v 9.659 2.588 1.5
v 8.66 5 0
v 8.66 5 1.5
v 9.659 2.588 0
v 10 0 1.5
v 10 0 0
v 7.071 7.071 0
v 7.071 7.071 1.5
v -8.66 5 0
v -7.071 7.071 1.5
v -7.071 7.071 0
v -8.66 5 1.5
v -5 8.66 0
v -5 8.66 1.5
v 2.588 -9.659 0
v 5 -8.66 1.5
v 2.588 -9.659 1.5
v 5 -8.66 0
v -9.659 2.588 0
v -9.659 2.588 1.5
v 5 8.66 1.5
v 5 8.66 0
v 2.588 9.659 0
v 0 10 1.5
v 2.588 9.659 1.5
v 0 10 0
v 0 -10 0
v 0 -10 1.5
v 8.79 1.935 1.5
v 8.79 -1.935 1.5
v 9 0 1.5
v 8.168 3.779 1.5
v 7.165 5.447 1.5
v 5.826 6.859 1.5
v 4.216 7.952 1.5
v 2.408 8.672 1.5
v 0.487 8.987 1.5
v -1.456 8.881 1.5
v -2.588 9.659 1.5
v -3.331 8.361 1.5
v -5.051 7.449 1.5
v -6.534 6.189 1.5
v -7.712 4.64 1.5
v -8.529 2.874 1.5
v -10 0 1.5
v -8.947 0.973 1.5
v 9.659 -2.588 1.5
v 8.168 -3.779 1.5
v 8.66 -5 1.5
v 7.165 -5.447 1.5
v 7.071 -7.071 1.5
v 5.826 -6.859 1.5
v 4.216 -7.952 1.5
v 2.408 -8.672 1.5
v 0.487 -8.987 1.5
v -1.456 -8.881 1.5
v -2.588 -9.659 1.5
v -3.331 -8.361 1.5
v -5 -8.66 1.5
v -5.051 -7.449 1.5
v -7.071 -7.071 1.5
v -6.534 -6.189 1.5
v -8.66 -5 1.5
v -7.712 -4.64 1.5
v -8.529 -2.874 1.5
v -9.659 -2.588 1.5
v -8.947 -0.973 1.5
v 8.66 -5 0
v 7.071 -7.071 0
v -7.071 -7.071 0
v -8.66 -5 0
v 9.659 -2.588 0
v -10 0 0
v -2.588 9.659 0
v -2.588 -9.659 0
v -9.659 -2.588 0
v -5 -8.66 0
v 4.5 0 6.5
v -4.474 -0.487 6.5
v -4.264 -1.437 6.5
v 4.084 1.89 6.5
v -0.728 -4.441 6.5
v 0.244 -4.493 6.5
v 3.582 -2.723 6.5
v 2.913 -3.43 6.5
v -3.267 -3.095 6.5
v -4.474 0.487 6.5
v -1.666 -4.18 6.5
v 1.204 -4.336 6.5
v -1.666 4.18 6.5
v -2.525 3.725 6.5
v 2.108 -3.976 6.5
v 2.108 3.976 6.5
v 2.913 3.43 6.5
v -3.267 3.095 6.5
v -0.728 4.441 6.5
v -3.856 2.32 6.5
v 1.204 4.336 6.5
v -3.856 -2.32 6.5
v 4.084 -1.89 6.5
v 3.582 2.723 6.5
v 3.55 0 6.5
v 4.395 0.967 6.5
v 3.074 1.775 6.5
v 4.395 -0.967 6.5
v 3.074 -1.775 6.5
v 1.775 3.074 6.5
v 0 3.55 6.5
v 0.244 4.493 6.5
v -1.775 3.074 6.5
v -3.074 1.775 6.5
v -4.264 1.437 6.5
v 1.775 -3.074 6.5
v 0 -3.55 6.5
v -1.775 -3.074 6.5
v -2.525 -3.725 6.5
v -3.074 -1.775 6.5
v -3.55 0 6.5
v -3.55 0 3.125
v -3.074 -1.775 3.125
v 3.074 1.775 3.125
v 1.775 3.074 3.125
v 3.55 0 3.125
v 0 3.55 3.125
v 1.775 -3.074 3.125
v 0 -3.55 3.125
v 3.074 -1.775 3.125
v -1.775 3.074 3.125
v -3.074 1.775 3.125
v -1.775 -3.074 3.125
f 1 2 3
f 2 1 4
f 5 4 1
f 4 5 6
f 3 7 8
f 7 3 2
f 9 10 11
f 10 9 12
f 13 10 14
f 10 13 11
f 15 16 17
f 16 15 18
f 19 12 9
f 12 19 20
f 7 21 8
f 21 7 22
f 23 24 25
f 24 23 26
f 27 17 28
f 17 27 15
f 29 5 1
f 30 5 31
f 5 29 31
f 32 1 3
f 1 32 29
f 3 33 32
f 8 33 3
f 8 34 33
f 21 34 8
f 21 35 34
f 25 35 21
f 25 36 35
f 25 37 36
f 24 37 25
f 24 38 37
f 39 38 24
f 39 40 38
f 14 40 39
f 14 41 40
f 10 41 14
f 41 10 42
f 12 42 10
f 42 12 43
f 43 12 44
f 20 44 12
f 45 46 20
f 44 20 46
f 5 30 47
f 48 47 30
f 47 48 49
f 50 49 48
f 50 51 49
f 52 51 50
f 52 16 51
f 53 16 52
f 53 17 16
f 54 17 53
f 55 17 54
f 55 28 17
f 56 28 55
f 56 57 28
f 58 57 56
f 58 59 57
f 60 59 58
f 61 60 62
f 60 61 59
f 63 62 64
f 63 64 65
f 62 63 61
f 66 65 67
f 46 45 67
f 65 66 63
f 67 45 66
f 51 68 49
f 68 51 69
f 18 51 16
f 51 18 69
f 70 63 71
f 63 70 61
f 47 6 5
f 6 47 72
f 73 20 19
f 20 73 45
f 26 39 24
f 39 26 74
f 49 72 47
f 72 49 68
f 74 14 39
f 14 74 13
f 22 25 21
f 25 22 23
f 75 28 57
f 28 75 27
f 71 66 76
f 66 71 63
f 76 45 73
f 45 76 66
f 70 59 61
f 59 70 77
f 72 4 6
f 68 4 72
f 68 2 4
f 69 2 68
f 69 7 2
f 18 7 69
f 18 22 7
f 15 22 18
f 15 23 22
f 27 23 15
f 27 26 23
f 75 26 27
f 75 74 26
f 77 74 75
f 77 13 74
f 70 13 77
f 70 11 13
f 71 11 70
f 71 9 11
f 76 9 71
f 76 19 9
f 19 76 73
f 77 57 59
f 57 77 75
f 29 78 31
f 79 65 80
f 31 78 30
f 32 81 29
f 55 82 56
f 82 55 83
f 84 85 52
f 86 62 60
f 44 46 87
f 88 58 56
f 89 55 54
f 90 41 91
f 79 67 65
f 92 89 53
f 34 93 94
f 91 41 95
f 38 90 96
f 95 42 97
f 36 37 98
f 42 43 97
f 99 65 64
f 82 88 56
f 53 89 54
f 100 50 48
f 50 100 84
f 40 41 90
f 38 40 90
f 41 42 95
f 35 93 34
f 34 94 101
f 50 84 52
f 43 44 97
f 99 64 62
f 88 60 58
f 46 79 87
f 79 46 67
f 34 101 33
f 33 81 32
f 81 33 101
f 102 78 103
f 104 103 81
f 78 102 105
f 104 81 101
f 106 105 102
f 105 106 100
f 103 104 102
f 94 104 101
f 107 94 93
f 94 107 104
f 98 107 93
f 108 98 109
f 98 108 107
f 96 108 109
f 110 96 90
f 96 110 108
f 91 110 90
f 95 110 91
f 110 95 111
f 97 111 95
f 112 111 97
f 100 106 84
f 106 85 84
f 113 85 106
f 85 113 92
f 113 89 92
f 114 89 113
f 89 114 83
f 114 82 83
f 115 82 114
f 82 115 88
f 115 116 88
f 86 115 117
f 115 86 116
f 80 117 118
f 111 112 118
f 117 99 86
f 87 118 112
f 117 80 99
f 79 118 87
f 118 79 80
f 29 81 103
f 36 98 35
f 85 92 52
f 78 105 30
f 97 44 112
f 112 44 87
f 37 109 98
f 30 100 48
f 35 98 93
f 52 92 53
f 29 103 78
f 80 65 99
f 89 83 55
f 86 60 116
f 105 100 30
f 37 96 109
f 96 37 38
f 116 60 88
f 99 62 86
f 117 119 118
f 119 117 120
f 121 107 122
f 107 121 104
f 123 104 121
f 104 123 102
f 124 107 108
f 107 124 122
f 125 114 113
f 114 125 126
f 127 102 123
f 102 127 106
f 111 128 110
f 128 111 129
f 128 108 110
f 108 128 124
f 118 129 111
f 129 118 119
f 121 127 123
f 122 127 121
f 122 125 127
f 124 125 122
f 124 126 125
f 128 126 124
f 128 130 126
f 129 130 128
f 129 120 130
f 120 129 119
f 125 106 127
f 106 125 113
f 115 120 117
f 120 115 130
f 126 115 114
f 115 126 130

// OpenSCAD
// file: placeholders/hex-nut-and-bolt.scad
module hex_nut() {
  c = is_undef($clearance) ? 0 : $clearance;
  across_corners = 12.83;
  detail = !is_undef($detail) && $detail;
  height = 5.56;

  color("silver")
  difference() {
    cylinder(d=across_corners + c, h=height + c, $fn=6);
    if (detail) {
      cylinder(d=6.35 - c, h=20, center=true);
    }
  }
}

module hex_bolt() {
  bolt_height = 29.4;
  cap_height = 4.3;
  c = is_undef($clearance) ? 0 : $clearance;
  e = is_undef($extend) ? 0 : $extend;

  color("silver") {
    translate([0, 0, -c/2]) cylinder(d=6.35 + c, h=bolt_height + c + e);
    translate([0, 0, bolt_height - cap_height - c/2]) cylinder(d=12.47+c, h=cap_height+c + e, $fn=6);
  }
}
// main file
use <placeholders/hex-nut-and-bolt.scad>

module swivel_plate() {
  difference() {
    union() {
      cylinder(d=20, h=1.5, $fn=24);
      translate([0, 0, 1.5]) cylinder(d1=18, d2=9, h=5);
    }
    translate([0, 0, 3.5]) hex_bolt($clearance=0.75);
  }
}

module swivel_plate_with_nut() {
  difference() {
    union() {
      cylinder(d=20, h=1.5, $fn=24);
      translate([0, 0, 1.5]) cylinder(d1=18, d2=15, h=4);
    }
    translate([0, 0, 3.5]) hex_bolt($clearance=0.75);
    translate([0, 0, 1]) hex_nut();
  }
}

swivel_plate();
